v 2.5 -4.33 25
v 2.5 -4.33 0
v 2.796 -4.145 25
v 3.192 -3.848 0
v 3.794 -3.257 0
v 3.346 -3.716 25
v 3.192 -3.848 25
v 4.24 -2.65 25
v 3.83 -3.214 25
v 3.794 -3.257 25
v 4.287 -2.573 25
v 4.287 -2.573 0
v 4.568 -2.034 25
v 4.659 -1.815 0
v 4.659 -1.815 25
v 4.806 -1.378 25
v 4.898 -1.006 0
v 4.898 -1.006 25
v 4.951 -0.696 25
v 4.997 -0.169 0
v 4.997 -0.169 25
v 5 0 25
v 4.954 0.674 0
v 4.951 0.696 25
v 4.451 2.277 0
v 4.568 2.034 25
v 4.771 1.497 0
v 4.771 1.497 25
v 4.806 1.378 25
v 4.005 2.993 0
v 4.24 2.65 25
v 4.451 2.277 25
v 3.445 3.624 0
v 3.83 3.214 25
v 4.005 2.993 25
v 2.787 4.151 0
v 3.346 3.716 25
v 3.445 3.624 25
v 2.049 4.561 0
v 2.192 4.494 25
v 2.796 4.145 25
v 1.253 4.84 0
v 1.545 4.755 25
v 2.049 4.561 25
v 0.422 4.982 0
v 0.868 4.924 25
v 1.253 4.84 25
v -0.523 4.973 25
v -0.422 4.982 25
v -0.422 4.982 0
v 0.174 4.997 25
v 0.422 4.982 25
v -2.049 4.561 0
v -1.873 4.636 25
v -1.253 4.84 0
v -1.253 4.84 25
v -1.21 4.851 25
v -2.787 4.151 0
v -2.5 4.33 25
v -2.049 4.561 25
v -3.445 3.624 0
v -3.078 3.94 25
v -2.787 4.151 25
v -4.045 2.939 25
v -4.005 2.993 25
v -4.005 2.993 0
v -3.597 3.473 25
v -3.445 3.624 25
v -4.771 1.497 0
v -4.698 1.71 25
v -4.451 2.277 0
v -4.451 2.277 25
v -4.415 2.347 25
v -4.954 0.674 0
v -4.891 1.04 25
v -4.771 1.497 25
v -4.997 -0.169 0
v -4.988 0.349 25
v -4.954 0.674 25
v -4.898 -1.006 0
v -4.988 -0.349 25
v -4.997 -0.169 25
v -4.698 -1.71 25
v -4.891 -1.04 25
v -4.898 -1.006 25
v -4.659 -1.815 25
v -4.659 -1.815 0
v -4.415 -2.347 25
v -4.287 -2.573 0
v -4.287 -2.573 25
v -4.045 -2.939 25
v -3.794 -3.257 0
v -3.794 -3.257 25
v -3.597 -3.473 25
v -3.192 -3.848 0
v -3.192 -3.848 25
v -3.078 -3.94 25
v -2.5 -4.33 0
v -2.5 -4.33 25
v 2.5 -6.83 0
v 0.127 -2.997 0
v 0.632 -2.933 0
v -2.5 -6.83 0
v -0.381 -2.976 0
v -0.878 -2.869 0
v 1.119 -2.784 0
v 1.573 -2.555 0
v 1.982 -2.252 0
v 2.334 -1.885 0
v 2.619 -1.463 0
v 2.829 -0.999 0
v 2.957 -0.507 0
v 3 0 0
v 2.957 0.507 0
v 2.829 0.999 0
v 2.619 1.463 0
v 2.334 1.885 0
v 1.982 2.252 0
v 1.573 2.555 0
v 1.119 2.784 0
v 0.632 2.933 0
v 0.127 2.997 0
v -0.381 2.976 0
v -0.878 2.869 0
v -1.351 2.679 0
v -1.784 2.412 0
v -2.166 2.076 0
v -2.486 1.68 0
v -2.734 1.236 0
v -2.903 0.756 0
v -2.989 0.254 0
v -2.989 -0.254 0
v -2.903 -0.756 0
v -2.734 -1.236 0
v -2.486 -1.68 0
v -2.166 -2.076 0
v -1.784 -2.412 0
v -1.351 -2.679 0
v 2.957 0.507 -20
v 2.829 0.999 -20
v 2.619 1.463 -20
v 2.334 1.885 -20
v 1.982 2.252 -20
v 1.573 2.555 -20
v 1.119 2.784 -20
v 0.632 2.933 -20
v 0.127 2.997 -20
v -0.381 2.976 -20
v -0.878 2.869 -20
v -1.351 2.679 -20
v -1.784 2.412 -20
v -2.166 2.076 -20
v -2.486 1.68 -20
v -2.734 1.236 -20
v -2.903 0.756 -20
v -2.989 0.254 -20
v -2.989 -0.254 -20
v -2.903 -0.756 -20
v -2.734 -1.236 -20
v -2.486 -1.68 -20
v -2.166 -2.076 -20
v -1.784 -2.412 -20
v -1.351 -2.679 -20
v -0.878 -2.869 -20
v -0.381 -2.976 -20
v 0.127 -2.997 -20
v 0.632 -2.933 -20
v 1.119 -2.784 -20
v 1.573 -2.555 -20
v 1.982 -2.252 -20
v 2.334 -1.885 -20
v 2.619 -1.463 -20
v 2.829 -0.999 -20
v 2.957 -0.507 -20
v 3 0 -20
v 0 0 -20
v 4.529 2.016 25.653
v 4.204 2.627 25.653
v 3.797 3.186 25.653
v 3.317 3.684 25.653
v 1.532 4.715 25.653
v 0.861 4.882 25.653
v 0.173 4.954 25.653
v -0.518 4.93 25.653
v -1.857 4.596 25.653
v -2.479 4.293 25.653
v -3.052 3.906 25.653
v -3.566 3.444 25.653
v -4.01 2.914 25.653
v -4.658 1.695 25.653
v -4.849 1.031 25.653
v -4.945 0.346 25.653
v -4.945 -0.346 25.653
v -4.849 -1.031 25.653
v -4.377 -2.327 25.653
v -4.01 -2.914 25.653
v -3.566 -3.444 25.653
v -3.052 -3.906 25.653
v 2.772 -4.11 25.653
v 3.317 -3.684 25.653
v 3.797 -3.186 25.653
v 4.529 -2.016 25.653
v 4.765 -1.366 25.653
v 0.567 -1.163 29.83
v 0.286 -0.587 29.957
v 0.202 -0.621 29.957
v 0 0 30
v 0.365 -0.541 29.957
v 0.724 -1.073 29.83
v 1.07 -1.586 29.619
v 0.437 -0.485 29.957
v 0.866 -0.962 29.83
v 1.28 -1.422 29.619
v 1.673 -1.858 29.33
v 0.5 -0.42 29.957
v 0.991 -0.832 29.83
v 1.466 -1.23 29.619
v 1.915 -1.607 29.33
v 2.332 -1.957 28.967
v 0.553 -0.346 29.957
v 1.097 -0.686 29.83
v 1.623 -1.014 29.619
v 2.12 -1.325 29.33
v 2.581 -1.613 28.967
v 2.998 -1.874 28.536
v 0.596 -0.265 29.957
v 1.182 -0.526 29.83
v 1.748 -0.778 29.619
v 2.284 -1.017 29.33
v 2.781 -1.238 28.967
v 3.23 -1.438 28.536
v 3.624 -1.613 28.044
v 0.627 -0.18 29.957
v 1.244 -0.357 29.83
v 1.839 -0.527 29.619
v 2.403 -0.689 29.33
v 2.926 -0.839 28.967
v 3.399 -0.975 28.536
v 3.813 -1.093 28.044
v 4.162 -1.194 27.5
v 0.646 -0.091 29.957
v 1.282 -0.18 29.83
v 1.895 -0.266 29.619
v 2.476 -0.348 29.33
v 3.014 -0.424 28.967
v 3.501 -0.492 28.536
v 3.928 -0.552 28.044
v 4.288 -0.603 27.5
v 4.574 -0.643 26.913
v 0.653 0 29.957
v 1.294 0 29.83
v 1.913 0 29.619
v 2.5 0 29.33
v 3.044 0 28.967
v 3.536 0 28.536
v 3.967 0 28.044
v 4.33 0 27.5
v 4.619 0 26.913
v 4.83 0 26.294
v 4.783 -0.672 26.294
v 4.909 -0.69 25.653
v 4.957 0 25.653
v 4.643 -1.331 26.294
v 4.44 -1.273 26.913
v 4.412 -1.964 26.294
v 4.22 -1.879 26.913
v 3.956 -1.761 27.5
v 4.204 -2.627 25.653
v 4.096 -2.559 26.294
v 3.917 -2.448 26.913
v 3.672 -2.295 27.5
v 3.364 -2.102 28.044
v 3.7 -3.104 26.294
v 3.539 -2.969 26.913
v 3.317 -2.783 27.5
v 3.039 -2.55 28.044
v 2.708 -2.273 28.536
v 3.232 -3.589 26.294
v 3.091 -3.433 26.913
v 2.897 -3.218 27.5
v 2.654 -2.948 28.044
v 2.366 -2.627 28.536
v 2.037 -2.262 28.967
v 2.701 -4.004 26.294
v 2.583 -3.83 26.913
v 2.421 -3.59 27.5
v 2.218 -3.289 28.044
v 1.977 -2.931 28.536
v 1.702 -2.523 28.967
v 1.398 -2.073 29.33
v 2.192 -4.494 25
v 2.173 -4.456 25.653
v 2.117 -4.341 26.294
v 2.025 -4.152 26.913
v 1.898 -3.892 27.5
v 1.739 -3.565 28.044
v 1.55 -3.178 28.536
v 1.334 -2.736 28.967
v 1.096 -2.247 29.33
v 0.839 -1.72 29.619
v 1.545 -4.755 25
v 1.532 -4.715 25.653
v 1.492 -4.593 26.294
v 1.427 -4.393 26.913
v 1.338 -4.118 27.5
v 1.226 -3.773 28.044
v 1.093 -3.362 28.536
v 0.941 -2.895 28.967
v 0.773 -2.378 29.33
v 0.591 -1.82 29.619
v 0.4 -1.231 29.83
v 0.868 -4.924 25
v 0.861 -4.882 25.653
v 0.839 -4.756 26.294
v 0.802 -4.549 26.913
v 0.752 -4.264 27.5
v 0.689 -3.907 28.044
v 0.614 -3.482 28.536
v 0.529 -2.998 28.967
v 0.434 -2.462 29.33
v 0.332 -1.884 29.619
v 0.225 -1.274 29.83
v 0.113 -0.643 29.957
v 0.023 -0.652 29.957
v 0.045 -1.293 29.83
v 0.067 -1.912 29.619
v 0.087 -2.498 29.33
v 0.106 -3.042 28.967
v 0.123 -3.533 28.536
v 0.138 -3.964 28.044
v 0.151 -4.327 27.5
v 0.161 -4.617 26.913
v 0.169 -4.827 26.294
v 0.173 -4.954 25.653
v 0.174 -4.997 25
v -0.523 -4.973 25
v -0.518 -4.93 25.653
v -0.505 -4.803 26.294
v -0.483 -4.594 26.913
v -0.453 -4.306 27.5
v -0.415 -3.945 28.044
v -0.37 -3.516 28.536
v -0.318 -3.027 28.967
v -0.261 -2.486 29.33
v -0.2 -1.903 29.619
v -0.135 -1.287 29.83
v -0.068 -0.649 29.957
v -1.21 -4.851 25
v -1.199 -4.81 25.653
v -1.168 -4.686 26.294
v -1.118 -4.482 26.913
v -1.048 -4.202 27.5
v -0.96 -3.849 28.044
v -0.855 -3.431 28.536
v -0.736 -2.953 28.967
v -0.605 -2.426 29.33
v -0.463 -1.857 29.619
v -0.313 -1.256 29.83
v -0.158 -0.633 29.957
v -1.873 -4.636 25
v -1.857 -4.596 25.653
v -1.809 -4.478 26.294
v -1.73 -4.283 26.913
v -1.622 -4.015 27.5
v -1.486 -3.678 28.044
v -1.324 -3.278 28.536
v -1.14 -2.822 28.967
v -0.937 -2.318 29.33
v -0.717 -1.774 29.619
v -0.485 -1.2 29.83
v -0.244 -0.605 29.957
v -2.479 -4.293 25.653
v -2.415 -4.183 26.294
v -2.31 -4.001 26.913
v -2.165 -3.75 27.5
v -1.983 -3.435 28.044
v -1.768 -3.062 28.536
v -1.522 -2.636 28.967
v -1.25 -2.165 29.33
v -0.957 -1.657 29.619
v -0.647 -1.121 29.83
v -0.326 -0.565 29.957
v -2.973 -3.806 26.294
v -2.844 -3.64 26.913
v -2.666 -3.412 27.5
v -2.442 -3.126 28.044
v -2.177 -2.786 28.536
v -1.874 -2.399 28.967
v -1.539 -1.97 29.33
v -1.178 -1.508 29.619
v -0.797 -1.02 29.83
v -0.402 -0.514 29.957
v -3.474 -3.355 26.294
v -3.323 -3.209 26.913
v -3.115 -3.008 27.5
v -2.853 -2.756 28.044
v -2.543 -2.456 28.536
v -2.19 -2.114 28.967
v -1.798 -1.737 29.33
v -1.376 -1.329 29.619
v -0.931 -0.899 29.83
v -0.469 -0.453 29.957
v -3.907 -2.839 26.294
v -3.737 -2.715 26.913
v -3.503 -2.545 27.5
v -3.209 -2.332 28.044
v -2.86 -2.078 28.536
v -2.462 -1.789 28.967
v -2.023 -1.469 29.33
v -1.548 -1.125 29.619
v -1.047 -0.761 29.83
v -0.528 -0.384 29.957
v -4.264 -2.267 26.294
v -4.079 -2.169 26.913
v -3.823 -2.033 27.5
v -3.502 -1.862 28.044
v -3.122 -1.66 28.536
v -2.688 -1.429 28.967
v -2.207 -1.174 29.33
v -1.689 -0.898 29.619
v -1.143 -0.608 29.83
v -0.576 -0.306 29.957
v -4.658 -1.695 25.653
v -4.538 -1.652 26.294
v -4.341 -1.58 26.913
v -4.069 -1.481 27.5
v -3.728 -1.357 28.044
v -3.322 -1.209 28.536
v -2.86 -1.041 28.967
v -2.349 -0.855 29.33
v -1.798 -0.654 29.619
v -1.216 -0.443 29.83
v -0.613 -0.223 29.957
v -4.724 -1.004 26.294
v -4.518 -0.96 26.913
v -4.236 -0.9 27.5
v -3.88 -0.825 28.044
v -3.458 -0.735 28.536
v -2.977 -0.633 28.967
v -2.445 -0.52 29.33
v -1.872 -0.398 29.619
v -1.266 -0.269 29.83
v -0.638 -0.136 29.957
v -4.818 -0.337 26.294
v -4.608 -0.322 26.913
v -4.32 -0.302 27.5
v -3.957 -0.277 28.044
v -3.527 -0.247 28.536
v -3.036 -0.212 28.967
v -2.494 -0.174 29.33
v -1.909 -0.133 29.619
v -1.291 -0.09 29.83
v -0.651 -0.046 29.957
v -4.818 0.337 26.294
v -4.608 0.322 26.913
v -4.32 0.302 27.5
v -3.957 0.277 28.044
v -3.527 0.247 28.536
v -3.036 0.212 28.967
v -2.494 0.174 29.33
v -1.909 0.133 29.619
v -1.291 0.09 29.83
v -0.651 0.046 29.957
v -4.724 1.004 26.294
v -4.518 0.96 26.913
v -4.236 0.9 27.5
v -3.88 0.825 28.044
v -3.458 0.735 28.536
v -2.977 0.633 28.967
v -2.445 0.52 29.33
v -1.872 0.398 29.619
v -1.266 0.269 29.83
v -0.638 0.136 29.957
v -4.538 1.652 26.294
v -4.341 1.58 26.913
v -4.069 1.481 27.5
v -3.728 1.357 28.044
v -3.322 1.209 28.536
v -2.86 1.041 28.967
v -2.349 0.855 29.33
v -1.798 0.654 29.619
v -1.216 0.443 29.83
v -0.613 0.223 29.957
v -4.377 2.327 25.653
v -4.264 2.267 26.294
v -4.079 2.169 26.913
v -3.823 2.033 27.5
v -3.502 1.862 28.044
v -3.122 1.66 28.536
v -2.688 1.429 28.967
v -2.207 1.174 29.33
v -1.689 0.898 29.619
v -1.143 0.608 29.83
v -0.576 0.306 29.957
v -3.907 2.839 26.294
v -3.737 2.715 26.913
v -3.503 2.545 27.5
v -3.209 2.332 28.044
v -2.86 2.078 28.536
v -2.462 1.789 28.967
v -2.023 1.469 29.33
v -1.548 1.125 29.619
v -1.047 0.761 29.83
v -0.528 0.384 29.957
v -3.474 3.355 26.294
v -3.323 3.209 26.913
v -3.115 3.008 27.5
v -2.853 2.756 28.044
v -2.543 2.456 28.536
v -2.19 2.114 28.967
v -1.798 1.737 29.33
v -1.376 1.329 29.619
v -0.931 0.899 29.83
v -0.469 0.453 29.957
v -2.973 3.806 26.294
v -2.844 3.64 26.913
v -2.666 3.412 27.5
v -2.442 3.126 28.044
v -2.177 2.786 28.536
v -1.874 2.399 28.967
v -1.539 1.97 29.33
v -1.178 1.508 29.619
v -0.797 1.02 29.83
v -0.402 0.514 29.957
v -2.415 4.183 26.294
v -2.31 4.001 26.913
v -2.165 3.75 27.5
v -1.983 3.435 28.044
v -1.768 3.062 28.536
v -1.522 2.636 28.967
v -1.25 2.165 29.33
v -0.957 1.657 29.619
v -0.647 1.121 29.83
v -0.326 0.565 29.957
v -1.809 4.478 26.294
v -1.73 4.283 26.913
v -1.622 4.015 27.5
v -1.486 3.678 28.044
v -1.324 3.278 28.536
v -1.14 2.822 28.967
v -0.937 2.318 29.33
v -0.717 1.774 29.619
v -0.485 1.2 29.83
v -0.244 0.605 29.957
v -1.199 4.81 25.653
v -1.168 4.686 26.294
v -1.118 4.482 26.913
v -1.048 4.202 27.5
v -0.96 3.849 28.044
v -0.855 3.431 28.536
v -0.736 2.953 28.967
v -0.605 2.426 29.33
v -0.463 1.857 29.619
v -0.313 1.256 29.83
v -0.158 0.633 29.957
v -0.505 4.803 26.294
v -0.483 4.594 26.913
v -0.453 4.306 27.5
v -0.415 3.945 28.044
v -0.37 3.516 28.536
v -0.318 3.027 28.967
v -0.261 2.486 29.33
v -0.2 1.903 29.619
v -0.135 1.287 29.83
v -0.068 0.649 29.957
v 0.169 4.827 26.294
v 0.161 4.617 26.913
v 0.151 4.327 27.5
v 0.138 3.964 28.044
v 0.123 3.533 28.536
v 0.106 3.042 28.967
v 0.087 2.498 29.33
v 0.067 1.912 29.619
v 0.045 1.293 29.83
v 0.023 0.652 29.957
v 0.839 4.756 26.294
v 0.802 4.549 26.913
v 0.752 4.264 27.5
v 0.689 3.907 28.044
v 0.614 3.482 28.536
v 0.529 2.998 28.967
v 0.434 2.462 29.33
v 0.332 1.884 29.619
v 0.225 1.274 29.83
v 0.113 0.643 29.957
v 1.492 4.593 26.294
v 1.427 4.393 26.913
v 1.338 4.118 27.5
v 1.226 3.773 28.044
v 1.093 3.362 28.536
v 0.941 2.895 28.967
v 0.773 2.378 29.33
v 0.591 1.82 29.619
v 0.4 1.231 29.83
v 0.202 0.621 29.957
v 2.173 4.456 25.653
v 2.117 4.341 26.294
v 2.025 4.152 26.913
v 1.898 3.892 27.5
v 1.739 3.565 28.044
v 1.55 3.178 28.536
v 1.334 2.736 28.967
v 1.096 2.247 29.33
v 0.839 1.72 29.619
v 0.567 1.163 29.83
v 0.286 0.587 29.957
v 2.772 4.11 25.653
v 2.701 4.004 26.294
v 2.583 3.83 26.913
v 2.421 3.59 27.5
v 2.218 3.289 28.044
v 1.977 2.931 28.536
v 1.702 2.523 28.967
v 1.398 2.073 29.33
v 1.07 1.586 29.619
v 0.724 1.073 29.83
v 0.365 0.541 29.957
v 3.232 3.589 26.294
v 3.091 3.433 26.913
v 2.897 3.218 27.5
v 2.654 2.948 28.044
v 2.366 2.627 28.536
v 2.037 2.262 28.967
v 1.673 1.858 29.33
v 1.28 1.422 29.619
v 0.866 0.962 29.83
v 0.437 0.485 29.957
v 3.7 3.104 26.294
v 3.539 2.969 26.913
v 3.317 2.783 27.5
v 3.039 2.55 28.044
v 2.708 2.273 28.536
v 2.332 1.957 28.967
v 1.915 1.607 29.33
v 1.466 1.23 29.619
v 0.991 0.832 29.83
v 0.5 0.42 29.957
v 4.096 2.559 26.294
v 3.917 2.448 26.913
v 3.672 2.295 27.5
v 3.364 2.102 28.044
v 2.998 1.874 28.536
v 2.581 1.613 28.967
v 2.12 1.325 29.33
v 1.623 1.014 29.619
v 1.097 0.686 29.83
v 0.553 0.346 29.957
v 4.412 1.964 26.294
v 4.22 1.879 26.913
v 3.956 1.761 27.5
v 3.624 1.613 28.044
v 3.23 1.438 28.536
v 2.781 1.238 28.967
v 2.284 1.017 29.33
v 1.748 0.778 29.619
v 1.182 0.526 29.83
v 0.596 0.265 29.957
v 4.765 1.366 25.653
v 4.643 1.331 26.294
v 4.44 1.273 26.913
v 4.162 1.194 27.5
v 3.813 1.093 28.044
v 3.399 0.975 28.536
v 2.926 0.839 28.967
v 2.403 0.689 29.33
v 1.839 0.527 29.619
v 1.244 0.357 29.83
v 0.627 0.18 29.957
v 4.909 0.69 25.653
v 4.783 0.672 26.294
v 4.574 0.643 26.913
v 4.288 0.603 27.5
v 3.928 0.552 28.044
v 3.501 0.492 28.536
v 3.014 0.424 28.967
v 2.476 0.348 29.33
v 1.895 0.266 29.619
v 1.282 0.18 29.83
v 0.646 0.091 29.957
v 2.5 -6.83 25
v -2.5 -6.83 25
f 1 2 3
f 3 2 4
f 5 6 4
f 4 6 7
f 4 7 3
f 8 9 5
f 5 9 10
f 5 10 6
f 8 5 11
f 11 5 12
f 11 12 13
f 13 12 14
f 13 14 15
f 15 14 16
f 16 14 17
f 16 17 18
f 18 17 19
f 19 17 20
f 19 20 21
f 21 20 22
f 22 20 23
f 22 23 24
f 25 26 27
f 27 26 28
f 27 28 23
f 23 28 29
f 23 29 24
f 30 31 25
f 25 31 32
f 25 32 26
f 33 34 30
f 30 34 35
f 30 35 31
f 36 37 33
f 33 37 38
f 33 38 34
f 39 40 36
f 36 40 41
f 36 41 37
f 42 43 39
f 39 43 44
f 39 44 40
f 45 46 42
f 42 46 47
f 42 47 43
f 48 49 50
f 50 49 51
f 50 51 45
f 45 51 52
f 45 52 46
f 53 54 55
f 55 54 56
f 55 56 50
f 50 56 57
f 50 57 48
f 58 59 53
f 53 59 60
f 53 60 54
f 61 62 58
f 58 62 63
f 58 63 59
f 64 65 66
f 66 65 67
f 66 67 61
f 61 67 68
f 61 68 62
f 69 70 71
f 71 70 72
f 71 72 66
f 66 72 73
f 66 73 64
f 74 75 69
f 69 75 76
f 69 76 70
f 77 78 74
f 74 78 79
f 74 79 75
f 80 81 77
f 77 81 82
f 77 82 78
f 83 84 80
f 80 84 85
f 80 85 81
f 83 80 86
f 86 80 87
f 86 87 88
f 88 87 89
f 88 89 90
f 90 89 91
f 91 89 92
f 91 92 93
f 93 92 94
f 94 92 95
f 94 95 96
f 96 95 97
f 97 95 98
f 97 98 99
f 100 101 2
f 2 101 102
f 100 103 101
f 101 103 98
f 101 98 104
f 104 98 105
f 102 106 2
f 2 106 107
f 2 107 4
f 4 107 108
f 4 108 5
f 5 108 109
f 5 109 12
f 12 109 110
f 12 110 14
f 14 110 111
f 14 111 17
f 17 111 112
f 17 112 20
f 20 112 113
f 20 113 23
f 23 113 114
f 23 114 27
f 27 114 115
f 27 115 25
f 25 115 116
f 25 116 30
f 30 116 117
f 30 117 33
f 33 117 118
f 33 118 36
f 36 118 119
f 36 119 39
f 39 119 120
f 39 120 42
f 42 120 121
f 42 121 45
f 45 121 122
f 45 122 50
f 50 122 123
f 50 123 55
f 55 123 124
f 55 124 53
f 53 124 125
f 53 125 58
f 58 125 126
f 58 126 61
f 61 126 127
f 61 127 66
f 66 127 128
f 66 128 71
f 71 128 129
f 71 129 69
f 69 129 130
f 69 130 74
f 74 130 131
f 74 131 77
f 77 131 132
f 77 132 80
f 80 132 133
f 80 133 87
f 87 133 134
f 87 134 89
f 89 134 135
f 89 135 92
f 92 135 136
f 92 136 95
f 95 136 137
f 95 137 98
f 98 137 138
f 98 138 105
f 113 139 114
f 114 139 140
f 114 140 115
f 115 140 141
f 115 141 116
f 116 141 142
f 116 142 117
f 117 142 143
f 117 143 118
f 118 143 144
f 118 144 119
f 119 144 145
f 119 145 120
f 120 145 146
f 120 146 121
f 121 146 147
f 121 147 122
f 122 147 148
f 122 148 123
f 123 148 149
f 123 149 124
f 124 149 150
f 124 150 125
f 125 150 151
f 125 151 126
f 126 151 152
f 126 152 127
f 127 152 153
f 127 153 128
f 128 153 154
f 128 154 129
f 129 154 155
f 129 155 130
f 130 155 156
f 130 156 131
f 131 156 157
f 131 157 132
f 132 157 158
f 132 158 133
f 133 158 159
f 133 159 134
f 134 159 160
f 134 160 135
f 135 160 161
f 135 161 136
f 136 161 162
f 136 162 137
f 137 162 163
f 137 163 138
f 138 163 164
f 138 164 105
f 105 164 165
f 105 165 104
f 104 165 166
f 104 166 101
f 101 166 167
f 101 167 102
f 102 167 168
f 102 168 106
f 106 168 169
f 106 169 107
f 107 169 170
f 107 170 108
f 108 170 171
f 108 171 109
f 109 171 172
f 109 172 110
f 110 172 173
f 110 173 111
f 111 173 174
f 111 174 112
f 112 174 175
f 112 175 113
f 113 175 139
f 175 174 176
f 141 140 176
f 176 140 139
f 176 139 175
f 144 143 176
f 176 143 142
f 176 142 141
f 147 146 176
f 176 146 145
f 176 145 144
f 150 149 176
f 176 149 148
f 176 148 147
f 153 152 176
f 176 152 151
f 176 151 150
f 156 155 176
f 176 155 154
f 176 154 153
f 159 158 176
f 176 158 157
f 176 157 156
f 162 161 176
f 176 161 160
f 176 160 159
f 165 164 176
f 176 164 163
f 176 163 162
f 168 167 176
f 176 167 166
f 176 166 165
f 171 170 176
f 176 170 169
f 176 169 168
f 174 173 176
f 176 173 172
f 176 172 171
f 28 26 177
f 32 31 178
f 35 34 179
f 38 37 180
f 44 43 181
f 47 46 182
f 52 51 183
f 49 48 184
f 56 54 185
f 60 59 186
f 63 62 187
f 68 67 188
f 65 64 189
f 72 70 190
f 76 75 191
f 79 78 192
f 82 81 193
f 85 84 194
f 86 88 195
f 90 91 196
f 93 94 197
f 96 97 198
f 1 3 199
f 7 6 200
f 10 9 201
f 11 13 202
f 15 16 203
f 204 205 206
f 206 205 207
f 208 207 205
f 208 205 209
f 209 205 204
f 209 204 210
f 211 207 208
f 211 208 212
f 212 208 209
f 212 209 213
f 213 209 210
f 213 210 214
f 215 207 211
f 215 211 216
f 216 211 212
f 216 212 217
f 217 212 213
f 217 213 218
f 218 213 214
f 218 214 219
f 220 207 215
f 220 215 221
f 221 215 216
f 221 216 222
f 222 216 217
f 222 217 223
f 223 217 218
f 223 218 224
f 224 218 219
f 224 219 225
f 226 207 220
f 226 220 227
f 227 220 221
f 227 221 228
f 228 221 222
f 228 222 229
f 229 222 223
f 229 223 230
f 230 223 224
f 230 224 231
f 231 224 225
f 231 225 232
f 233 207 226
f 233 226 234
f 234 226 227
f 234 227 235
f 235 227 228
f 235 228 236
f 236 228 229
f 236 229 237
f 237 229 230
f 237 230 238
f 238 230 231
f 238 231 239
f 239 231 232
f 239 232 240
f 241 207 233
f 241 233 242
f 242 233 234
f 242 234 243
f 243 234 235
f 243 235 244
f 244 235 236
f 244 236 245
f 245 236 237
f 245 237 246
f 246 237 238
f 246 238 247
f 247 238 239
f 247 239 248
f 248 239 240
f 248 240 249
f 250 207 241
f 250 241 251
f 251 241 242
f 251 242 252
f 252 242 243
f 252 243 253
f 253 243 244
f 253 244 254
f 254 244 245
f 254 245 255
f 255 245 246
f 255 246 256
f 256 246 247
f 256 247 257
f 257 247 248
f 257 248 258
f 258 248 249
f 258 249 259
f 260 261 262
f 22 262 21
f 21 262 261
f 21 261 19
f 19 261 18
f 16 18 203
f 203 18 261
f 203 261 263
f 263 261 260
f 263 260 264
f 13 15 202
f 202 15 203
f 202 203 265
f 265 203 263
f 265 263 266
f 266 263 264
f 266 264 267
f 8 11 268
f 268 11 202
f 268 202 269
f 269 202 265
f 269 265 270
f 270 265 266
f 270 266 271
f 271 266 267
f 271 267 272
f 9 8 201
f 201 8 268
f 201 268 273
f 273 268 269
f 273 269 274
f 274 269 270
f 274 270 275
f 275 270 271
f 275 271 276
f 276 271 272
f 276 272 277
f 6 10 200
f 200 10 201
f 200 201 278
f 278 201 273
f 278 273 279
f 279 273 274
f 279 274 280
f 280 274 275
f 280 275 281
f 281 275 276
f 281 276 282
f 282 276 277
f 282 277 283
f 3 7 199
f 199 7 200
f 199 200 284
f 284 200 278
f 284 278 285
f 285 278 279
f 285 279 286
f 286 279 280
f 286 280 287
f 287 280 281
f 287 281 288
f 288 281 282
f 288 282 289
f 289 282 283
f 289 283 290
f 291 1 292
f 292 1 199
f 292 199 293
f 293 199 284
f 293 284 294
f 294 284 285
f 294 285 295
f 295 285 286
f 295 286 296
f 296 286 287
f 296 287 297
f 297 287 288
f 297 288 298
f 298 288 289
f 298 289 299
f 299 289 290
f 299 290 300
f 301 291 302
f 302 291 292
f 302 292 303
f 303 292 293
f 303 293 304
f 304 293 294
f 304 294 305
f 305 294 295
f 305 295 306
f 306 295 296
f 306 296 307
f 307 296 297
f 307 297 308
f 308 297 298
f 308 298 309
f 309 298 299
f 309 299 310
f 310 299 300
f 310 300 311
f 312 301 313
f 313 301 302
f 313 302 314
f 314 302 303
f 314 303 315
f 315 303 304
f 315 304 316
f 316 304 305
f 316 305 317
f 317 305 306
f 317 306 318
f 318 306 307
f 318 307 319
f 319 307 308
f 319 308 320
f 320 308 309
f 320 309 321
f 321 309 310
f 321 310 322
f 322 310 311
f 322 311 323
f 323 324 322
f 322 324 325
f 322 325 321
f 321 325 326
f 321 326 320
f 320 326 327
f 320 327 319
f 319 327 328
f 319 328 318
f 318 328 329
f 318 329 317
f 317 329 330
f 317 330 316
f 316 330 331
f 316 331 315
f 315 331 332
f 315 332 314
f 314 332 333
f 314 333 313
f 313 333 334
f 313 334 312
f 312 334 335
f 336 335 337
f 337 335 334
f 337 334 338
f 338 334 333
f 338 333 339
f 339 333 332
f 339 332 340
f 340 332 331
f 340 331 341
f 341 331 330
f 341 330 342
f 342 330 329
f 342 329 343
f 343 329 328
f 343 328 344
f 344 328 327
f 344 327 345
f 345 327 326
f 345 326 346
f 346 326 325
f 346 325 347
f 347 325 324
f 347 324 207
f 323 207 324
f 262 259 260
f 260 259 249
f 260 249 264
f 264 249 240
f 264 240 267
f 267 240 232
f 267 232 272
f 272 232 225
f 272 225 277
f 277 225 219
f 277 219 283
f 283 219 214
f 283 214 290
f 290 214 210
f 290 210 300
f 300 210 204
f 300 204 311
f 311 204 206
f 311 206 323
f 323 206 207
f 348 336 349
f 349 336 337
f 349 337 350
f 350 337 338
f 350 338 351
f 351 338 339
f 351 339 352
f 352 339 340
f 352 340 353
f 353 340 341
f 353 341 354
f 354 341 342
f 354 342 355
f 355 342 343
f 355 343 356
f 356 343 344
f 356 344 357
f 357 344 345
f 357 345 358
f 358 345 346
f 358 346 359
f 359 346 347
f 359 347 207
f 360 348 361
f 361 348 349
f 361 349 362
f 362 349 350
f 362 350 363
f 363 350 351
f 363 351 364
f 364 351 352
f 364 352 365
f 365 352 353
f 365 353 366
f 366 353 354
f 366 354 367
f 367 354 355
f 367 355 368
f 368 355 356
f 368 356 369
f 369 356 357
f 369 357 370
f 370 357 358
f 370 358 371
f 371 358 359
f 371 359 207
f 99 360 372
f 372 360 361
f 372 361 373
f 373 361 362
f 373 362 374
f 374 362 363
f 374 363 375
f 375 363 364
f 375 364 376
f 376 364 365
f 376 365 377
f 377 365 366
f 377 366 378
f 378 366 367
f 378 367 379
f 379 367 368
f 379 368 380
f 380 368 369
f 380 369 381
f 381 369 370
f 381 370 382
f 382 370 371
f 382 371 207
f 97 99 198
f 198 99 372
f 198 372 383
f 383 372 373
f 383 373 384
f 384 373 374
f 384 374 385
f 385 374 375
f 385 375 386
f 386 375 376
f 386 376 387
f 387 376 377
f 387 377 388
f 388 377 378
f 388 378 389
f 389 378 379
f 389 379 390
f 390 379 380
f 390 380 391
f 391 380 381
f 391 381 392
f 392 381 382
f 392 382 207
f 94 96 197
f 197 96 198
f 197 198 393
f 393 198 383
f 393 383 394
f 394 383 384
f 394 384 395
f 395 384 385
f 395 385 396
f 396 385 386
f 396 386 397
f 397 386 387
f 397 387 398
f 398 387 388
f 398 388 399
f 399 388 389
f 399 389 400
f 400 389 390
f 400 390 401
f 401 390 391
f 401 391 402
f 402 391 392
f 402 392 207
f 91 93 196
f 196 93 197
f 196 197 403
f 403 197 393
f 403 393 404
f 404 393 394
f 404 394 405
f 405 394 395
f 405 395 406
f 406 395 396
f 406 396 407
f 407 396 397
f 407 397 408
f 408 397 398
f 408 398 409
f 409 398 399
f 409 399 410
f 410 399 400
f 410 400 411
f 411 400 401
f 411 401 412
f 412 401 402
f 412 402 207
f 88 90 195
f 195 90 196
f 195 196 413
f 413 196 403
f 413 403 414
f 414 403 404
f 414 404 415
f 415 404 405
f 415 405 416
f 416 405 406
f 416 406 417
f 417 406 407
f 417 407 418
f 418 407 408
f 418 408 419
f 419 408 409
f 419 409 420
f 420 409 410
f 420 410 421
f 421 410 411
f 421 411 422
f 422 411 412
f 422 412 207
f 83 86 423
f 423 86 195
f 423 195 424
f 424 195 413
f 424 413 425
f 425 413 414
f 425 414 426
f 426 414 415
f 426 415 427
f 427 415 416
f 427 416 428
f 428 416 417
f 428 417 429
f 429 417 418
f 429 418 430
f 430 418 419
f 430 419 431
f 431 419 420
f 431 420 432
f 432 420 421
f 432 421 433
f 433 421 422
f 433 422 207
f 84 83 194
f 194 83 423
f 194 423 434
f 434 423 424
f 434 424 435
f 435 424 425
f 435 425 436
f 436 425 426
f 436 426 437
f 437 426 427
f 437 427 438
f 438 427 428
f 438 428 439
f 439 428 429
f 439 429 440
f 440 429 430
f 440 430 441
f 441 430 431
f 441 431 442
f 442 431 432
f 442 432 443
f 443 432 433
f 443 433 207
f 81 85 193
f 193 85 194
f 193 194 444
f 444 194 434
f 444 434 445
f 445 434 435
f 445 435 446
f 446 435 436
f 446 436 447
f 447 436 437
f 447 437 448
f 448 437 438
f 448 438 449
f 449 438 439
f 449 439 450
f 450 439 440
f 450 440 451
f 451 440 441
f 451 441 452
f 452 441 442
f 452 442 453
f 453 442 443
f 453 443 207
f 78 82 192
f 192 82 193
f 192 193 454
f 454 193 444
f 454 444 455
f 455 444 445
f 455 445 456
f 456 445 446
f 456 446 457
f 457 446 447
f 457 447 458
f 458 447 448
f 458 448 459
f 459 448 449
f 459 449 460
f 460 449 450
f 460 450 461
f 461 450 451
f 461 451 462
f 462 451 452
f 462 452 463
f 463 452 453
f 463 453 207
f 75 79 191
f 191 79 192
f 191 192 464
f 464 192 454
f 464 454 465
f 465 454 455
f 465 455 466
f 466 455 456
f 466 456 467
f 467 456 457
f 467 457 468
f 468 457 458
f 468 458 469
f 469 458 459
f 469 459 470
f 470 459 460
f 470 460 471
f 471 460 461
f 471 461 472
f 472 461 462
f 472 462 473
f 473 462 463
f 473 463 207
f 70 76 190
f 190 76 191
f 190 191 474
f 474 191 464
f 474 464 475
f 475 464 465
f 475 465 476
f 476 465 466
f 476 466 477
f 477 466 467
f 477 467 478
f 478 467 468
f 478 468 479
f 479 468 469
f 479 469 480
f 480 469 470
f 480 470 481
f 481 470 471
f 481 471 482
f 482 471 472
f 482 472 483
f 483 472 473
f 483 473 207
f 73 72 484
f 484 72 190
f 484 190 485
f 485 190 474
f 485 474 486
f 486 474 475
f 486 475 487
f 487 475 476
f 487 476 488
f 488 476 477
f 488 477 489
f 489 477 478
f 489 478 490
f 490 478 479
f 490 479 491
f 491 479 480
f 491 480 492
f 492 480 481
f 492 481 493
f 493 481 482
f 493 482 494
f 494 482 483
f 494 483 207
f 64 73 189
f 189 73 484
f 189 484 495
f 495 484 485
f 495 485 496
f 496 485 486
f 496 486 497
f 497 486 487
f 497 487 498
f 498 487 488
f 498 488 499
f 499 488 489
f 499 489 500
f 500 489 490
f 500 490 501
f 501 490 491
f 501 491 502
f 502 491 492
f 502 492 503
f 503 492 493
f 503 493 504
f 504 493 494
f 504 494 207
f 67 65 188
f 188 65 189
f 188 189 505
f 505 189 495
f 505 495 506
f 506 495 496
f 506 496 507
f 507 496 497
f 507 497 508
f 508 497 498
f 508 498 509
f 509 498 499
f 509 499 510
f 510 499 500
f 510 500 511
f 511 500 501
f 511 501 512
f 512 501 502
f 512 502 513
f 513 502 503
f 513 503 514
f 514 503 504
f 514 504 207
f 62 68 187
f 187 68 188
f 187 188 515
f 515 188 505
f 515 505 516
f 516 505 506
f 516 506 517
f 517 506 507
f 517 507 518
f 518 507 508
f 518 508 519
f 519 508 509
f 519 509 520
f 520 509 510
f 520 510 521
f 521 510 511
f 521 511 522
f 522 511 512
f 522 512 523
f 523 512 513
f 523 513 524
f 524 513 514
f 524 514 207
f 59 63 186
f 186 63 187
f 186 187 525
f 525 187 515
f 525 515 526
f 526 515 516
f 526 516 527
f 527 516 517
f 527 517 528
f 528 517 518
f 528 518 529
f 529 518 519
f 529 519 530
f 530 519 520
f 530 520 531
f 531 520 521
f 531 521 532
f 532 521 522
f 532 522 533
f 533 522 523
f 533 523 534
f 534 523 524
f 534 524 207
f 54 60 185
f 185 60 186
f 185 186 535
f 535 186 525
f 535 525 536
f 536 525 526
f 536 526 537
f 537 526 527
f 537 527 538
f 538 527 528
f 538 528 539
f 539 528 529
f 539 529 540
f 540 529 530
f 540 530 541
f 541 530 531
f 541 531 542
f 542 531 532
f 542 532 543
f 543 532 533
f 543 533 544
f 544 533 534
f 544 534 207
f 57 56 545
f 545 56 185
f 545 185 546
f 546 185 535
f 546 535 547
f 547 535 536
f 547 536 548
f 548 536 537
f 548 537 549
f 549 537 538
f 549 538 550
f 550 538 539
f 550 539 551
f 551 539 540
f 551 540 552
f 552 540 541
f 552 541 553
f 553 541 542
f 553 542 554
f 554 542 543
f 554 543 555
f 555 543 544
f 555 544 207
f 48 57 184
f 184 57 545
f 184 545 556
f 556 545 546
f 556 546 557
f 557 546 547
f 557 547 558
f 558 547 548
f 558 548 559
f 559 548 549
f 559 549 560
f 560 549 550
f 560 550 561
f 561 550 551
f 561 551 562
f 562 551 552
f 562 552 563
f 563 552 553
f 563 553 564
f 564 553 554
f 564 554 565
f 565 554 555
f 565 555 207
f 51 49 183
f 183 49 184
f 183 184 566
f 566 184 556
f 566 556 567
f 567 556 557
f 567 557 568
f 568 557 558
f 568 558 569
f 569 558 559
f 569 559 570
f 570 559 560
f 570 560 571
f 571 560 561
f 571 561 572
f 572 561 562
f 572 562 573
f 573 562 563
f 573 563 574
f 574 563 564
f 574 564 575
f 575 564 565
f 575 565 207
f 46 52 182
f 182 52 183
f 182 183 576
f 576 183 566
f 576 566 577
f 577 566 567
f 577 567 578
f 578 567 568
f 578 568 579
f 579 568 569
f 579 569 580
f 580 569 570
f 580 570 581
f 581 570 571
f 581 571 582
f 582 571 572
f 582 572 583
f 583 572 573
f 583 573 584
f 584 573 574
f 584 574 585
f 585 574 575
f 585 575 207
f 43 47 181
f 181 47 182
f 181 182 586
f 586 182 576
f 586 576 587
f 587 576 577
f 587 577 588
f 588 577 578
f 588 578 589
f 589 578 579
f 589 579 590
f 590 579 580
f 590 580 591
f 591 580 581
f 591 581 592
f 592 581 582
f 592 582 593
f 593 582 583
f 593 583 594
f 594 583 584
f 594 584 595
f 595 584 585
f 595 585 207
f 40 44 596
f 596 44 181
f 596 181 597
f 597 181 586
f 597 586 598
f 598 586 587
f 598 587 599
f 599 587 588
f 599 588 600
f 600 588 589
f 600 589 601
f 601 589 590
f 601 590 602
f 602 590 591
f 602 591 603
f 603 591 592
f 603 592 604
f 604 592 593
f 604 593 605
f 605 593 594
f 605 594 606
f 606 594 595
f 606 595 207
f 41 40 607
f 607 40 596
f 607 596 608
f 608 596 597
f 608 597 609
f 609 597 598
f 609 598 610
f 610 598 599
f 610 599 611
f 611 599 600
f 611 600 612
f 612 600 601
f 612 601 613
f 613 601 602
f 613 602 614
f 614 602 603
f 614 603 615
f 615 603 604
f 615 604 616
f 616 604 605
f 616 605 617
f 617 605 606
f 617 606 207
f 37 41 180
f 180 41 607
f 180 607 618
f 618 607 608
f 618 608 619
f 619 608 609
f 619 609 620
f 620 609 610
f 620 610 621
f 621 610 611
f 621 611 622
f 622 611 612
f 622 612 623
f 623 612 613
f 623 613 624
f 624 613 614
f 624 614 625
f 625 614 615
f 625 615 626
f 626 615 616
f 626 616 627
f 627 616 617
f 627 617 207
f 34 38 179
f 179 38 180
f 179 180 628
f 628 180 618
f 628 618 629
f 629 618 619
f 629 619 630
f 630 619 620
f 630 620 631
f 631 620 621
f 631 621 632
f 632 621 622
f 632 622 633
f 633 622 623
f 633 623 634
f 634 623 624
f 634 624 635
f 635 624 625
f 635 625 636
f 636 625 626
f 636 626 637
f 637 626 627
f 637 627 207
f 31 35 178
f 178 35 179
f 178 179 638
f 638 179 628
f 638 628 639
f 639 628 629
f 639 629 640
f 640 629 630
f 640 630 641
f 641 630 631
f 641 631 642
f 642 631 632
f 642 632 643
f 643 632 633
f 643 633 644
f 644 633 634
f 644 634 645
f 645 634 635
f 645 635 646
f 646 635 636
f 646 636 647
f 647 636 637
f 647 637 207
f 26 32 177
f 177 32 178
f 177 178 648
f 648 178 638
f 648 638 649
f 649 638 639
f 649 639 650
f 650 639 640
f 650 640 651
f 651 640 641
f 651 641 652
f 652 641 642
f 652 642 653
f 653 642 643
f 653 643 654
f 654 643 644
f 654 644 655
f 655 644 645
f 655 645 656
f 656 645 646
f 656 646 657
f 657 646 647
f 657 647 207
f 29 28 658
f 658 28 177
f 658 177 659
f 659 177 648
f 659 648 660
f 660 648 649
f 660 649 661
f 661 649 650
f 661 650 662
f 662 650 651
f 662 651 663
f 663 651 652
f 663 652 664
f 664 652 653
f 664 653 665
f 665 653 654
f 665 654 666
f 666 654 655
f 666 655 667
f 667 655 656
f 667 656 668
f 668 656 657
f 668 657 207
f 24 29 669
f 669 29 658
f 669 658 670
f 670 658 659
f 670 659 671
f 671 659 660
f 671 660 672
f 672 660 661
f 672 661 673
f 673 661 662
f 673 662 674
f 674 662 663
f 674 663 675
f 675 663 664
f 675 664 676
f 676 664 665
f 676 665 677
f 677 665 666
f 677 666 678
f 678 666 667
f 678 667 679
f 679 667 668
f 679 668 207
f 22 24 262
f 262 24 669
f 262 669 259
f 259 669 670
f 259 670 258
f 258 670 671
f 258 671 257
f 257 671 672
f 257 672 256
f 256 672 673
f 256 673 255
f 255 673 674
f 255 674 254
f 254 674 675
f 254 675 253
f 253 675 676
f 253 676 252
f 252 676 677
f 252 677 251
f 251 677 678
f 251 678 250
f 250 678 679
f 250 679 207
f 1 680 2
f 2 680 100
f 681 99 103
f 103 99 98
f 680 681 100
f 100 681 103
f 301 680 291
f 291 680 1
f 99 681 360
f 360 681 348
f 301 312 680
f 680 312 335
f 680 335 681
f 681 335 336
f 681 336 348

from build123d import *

# Parameters (mm, degrees)
SZKIC1_R                    = 5
DODANIE_WYCI_GNI_CIE1_DEPTH = 30
SZKIC1_3_R                  = 3
DODANIE_WYCI_GNI_CIE2_DEPTH = 20
ZAOKR_GLENIE1_R             = 5
DODANIE_WYCI_GNI_CIE3_DEPTH = 25


with BuildPart() as part:
    # Szkic1 → Dodanie-wyciągnięcie1 (new body)
    with BuildSketch(Plane.XY):
        Circle(SZKIC1_R)
    extrude(amount=DODANIE_WYCI_GNI_CIE1_DEPTH)

    # Szkic1<3> → Dodanie-wyciągnięcie2 (add)
    with BuildSketch(Plane.XY):
        Circle(SZKIC1_3_R)
    extrude(amount=-DODANIE_WYCI_GNI_CIE2_DEPTH)

    # Zaokrąglenie1
    zaokr_glenie1_edges = [part.edges().sort_by_distance(p)[0] for p in [
        (-5, 0, 30),
    ]]
    fillet(zaokr_glenie1_edges, radius=ZAOKR_GLENIE1_R)

    # Szkic3 → Dodanie-wyciągnięcie3 (add)
    with BuildSketch(Plane(origin=(0, 0, 0), x_dir=(-1, 0, 0), z_dir=(0, 0, -1))):
        with BuildLine():
            Line((2.5, -6.830127019), (2.5, -4.330127019))
            ThreePointArc((2.5, -4.330127019), (0, -5), (-2.5, -4.330127019))
            Line((-2.5, -4.330127019), (-2.5, -6.830127019))
            Line((-2.5, -6.830127019), (2.5, -6.830127019))
        make_face()
    extrude(amount=-DODANIE_WYCI_GNI_CIE3_DEPTH)


solid = part.part
